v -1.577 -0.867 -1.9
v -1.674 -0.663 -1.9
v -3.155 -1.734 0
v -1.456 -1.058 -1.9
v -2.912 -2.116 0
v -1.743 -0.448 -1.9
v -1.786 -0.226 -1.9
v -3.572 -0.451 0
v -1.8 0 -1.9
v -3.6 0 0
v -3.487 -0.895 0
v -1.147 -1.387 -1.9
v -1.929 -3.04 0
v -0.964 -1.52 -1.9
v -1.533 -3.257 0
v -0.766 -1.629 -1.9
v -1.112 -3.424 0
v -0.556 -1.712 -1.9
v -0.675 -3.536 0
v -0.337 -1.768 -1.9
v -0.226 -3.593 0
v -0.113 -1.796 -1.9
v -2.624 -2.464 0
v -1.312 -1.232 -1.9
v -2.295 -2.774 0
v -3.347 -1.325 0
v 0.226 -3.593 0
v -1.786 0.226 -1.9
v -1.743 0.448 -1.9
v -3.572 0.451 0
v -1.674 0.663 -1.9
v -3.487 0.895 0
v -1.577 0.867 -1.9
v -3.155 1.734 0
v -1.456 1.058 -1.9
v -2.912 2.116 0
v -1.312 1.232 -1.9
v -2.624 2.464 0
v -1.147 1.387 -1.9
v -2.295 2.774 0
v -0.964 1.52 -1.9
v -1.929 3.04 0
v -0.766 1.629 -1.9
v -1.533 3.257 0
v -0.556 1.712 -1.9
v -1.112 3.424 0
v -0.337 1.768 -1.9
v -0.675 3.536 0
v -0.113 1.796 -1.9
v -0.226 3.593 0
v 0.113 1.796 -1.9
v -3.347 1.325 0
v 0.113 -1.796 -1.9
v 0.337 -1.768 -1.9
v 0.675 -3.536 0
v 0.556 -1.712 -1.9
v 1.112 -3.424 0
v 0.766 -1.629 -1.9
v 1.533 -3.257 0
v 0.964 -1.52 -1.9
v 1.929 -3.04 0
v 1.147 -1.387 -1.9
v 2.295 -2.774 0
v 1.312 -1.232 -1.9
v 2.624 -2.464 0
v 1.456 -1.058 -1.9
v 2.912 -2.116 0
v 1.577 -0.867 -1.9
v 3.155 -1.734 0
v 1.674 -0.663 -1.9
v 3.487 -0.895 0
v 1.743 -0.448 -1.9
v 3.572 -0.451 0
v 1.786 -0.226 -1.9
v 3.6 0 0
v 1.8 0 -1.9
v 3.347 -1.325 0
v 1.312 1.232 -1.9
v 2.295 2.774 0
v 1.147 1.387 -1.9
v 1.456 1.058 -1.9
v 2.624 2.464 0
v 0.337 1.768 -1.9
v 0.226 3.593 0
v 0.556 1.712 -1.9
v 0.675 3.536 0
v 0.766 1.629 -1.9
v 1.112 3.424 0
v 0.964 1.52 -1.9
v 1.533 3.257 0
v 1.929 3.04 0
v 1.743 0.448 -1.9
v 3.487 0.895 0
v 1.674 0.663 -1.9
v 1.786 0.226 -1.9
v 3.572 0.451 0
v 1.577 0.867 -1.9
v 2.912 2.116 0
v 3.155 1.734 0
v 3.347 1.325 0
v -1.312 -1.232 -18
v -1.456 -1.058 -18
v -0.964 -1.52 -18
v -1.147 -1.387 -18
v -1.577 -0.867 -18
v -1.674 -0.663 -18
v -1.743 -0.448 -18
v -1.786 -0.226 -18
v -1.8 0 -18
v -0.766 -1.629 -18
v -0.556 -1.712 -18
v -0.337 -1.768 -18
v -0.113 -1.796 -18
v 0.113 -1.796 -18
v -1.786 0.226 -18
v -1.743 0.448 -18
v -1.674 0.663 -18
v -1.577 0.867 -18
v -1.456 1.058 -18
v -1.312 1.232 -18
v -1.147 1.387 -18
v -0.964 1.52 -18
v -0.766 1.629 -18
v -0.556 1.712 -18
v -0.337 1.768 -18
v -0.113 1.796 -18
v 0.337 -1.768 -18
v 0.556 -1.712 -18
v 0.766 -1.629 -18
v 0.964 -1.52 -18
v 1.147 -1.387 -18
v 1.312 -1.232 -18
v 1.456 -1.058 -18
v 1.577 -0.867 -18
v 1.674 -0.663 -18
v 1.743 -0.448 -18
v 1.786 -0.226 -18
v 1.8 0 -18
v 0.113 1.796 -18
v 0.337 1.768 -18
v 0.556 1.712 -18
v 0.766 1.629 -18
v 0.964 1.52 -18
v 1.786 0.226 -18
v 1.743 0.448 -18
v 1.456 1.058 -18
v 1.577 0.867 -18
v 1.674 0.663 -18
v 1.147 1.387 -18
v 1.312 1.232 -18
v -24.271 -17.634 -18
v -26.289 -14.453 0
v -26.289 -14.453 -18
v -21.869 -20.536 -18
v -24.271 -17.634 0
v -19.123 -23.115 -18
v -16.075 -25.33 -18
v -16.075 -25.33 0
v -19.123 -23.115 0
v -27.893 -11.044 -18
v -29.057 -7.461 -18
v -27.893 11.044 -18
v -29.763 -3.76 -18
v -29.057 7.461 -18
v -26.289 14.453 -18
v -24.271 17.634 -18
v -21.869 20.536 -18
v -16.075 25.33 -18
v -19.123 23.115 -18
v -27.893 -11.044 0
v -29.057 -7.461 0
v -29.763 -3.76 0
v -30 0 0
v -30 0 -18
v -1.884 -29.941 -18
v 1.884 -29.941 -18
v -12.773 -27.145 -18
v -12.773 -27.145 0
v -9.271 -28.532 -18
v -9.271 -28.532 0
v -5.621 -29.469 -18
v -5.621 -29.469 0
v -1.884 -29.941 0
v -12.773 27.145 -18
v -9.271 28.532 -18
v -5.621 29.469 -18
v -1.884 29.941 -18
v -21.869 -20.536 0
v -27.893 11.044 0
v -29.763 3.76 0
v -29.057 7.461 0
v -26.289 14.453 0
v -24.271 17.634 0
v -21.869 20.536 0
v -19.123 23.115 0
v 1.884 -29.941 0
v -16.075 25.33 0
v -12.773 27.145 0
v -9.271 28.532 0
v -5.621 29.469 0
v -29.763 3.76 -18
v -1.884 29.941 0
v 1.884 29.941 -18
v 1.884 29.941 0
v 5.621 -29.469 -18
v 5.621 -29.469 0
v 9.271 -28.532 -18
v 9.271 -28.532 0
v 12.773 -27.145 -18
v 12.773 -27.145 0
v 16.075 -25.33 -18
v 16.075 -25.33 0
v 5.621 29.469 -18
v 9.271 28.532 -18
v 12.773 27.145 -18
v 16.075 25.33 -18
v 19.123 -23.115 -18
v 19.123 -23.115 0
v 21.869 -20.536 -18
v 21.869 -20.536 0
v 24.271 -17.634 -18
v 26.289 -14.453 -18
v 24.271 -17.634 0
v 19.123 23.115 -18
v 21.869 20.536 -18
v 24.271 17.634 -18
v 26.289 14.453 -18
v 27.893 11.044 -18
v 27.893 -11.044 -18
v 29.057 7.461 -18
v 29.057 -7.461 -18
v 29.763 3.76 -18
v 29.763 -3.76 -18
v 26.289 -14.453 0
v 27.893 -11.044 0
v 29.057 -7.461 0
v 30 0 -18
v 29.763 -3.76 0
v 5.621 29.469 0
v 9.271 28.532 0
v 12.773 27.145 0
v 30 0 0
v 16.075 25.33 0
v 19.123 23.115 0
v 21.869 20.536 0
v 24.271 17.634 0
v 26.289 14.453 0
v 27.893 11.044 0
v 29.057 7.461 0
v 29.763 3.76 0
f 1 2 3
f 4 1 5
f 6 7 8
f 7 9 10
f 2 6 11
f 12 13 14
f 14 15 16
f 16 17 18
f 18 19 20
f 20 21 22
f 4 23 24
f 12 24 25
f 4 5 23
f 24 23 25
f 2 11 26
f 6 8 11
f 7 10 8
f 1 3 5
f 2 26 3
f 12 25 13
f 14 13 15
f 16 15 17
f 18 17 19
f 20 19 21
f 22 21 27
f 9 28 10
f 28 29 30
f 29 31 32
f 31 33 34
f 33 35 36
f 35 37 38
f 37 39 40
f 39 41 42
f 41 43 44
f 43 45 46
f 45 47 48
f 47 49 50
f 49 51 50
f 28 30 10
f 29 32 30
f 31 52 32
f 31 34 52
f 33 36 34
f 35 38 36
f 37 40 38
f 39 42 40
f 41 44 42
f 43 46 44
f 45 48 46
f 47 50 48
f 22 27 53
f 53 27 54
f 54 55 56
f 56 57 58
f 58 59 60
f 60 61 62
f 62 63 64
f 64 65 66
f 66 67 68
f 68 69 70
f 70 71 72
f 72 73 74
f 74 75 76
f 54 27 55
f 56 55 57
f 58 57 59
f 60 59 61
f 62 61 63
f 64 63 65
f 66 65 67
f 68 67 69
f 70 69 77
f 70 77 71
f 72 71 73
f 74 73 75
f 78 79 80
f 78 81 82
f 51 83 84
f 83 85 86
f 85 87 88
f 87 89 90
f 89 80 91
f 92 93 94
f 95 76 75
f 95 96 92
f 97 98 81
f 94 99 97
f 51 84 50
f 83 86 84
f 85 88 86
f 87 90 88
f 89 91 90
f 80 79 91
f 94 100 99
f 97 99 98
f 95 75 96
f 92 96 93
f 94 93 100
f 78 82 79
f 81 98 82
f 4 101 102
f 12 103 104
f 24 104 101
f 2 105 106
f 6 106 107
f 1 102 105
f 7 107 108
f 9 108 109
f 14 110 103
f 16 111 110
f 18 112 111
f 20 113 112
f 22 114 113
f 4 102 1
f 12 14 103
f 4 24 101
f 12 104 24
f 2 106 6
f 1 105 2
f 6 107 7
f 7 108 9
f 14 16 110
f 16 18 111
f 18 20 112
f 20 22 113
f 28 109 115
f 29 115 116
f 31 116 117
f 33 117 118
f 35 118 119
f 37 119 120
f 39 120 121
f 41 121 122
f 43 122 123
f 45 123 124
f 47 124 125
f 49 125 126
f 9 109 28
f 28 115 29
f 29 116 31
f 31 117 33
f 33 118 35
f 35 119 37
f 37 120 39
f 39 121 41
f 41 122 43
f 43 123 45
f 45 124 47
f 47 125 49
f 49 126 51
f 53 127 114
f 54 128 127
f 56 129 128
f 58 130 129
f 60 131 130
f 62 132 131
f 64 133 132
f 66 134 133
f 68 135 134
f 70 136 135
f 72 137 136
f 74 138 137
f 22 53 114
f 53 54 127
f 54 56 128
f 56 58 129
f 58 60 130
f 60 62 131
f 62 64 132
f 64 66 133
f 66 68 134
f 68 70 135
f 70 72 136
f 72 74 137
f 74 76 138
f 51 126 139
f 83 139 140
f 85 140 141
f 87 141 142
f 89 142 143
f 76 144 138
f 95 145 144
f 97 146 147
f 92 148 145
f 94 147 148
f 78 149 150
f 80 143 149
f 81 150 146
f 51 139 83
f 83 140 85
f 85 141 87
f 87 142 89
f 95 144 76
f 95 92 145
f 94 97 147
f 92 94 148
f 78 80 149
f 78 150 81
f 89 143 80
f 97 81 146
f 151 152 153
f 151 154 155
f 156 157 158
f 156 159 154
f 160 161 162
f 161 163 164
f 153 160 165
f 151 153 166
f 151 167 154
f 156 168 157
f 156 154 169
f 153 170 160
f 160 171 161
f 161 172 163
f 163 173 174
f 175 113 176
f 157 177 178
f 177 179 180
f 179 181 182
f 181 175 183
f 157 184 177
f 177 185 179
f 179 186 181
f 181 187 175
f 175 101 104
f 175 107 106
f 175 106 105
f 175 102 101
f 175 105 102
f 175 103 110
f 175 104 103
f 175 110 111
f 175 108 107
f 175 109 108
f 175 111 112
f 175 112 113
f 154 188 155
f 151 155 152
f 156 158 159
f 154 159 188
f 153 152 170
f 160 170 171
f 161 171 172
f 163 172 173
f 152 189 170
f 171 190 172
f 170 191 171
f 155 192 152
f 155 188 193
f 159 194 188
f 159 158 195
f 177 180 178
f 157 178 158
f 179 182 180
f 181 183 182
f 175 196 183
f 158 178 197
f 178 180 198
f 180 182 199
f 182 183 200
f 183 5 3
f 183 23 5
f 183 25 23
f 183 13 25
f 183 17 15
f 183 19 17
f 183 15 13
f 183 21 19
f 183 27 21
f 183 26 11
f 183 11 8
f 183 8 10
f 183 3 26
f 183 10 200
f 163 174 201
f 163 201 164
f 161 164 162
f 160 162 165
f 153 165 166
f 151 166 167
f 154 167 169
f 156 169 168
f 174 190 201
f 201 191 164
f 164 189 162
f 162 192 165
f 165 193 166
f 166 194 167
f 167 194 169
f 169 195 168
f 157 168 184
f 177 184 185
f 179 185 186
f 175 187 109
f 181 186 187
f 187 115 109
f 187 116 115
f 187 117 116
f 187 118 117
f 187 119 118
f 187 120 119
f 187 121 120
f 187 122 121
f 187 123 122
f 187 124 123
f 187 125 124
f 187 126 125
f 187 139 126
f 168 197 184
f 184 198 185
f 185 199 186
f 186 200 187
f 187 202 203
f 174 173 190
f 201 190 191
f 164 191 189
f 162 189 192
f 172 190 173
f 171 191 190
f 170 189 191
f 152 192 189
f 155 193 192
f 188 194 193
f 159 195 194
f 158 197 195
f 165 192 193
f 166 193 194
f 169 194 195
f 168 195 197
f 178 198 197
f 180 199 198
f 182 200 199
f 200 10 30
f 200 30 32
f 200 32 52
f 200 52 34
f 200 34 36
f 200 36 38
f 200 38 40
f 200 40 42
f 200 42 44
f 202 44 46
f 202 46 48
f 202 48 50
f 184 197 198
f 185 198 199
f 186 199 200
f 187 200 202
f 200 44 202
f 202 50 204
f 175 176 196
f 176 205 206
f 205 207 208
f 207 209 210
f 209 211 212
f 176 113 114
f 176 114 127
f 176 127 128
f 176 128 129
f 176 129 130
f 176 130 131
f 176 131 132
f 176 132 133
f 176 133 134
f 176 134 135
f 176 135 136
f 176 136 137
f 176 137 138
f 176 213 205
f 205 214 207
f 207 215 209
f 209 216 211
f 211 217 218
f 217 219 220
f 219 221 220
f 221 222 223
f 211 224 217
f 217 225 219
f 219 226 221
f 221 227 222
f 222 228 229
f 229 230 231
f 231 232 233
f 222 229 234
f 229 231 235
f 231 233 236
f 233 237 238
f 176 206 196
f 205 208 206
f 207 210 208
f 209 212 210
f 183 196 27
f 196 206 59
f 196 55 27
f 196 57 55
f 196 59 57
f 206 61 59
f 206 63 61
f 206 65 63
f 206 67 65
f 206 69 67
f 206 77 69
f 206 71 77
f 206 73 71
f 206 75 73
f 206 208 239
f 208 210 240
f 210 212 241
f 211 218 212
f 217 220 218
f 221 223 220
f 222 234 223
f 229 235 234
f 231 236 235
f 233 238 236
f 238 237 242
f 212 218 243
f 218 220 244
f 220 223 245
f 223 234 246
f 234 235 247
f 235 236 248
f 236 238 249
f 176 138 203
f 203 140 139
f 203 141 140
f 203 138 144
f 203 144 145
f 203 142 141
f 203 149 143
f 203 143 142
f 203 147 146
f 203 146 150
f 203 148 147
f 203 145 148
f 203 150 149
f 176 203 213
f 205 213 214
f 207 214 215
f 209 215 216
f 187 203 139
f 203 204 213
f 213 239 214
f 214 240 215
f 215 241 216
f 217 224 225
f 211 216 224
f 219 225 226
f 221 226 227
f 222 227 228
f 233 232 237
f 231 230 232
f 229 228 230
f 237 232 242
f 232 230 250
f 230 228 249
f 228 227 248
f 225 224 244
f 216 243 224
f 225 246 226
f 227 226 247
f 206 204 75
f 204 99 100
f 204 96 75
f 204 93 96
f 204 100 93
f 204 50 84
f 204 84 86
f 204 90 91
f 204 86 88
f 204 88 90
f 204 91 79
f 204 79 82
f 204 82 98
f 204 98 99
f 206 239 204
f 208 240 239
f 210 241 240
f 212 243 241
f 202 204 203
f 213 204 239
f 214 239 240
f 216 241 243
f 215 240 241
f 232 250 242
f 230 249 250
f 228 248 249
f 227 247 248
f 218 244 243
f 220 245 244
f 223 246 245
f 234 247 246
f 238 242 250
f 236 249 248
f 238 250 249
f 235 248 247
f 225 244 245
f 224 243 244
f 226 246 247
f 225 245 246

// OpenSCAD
$fn = 50;

difference() {
	union() {
		translate(v = [0, 0, -18.0]) {
			cylinder(h = 18, r = 30.0);
		}
	}
	union() {
		translate(v = [0, 0, 0]) {
			rotate(a = [0, 0, 0]) {
				difference() {
					union() {
						translate(v = [0, 0, -21.0]) {
							cylinder(h = 21, r = 1.5);
						}
						translate(v = [0, 0, -1.9]) {
							cylinder(h = 1.9, r1 = 1.8, r2 = 3.6);
						}
						translate(v = [0, 0, -21.0]) {
							cylinder(h = 21, r = 1.8);
						}
						translate(v = [0, 0, -21.0]) {
							cylinder(h = 21, r = 1.5);
						}
					}
					union();
				}
			}
		}
	}
}
